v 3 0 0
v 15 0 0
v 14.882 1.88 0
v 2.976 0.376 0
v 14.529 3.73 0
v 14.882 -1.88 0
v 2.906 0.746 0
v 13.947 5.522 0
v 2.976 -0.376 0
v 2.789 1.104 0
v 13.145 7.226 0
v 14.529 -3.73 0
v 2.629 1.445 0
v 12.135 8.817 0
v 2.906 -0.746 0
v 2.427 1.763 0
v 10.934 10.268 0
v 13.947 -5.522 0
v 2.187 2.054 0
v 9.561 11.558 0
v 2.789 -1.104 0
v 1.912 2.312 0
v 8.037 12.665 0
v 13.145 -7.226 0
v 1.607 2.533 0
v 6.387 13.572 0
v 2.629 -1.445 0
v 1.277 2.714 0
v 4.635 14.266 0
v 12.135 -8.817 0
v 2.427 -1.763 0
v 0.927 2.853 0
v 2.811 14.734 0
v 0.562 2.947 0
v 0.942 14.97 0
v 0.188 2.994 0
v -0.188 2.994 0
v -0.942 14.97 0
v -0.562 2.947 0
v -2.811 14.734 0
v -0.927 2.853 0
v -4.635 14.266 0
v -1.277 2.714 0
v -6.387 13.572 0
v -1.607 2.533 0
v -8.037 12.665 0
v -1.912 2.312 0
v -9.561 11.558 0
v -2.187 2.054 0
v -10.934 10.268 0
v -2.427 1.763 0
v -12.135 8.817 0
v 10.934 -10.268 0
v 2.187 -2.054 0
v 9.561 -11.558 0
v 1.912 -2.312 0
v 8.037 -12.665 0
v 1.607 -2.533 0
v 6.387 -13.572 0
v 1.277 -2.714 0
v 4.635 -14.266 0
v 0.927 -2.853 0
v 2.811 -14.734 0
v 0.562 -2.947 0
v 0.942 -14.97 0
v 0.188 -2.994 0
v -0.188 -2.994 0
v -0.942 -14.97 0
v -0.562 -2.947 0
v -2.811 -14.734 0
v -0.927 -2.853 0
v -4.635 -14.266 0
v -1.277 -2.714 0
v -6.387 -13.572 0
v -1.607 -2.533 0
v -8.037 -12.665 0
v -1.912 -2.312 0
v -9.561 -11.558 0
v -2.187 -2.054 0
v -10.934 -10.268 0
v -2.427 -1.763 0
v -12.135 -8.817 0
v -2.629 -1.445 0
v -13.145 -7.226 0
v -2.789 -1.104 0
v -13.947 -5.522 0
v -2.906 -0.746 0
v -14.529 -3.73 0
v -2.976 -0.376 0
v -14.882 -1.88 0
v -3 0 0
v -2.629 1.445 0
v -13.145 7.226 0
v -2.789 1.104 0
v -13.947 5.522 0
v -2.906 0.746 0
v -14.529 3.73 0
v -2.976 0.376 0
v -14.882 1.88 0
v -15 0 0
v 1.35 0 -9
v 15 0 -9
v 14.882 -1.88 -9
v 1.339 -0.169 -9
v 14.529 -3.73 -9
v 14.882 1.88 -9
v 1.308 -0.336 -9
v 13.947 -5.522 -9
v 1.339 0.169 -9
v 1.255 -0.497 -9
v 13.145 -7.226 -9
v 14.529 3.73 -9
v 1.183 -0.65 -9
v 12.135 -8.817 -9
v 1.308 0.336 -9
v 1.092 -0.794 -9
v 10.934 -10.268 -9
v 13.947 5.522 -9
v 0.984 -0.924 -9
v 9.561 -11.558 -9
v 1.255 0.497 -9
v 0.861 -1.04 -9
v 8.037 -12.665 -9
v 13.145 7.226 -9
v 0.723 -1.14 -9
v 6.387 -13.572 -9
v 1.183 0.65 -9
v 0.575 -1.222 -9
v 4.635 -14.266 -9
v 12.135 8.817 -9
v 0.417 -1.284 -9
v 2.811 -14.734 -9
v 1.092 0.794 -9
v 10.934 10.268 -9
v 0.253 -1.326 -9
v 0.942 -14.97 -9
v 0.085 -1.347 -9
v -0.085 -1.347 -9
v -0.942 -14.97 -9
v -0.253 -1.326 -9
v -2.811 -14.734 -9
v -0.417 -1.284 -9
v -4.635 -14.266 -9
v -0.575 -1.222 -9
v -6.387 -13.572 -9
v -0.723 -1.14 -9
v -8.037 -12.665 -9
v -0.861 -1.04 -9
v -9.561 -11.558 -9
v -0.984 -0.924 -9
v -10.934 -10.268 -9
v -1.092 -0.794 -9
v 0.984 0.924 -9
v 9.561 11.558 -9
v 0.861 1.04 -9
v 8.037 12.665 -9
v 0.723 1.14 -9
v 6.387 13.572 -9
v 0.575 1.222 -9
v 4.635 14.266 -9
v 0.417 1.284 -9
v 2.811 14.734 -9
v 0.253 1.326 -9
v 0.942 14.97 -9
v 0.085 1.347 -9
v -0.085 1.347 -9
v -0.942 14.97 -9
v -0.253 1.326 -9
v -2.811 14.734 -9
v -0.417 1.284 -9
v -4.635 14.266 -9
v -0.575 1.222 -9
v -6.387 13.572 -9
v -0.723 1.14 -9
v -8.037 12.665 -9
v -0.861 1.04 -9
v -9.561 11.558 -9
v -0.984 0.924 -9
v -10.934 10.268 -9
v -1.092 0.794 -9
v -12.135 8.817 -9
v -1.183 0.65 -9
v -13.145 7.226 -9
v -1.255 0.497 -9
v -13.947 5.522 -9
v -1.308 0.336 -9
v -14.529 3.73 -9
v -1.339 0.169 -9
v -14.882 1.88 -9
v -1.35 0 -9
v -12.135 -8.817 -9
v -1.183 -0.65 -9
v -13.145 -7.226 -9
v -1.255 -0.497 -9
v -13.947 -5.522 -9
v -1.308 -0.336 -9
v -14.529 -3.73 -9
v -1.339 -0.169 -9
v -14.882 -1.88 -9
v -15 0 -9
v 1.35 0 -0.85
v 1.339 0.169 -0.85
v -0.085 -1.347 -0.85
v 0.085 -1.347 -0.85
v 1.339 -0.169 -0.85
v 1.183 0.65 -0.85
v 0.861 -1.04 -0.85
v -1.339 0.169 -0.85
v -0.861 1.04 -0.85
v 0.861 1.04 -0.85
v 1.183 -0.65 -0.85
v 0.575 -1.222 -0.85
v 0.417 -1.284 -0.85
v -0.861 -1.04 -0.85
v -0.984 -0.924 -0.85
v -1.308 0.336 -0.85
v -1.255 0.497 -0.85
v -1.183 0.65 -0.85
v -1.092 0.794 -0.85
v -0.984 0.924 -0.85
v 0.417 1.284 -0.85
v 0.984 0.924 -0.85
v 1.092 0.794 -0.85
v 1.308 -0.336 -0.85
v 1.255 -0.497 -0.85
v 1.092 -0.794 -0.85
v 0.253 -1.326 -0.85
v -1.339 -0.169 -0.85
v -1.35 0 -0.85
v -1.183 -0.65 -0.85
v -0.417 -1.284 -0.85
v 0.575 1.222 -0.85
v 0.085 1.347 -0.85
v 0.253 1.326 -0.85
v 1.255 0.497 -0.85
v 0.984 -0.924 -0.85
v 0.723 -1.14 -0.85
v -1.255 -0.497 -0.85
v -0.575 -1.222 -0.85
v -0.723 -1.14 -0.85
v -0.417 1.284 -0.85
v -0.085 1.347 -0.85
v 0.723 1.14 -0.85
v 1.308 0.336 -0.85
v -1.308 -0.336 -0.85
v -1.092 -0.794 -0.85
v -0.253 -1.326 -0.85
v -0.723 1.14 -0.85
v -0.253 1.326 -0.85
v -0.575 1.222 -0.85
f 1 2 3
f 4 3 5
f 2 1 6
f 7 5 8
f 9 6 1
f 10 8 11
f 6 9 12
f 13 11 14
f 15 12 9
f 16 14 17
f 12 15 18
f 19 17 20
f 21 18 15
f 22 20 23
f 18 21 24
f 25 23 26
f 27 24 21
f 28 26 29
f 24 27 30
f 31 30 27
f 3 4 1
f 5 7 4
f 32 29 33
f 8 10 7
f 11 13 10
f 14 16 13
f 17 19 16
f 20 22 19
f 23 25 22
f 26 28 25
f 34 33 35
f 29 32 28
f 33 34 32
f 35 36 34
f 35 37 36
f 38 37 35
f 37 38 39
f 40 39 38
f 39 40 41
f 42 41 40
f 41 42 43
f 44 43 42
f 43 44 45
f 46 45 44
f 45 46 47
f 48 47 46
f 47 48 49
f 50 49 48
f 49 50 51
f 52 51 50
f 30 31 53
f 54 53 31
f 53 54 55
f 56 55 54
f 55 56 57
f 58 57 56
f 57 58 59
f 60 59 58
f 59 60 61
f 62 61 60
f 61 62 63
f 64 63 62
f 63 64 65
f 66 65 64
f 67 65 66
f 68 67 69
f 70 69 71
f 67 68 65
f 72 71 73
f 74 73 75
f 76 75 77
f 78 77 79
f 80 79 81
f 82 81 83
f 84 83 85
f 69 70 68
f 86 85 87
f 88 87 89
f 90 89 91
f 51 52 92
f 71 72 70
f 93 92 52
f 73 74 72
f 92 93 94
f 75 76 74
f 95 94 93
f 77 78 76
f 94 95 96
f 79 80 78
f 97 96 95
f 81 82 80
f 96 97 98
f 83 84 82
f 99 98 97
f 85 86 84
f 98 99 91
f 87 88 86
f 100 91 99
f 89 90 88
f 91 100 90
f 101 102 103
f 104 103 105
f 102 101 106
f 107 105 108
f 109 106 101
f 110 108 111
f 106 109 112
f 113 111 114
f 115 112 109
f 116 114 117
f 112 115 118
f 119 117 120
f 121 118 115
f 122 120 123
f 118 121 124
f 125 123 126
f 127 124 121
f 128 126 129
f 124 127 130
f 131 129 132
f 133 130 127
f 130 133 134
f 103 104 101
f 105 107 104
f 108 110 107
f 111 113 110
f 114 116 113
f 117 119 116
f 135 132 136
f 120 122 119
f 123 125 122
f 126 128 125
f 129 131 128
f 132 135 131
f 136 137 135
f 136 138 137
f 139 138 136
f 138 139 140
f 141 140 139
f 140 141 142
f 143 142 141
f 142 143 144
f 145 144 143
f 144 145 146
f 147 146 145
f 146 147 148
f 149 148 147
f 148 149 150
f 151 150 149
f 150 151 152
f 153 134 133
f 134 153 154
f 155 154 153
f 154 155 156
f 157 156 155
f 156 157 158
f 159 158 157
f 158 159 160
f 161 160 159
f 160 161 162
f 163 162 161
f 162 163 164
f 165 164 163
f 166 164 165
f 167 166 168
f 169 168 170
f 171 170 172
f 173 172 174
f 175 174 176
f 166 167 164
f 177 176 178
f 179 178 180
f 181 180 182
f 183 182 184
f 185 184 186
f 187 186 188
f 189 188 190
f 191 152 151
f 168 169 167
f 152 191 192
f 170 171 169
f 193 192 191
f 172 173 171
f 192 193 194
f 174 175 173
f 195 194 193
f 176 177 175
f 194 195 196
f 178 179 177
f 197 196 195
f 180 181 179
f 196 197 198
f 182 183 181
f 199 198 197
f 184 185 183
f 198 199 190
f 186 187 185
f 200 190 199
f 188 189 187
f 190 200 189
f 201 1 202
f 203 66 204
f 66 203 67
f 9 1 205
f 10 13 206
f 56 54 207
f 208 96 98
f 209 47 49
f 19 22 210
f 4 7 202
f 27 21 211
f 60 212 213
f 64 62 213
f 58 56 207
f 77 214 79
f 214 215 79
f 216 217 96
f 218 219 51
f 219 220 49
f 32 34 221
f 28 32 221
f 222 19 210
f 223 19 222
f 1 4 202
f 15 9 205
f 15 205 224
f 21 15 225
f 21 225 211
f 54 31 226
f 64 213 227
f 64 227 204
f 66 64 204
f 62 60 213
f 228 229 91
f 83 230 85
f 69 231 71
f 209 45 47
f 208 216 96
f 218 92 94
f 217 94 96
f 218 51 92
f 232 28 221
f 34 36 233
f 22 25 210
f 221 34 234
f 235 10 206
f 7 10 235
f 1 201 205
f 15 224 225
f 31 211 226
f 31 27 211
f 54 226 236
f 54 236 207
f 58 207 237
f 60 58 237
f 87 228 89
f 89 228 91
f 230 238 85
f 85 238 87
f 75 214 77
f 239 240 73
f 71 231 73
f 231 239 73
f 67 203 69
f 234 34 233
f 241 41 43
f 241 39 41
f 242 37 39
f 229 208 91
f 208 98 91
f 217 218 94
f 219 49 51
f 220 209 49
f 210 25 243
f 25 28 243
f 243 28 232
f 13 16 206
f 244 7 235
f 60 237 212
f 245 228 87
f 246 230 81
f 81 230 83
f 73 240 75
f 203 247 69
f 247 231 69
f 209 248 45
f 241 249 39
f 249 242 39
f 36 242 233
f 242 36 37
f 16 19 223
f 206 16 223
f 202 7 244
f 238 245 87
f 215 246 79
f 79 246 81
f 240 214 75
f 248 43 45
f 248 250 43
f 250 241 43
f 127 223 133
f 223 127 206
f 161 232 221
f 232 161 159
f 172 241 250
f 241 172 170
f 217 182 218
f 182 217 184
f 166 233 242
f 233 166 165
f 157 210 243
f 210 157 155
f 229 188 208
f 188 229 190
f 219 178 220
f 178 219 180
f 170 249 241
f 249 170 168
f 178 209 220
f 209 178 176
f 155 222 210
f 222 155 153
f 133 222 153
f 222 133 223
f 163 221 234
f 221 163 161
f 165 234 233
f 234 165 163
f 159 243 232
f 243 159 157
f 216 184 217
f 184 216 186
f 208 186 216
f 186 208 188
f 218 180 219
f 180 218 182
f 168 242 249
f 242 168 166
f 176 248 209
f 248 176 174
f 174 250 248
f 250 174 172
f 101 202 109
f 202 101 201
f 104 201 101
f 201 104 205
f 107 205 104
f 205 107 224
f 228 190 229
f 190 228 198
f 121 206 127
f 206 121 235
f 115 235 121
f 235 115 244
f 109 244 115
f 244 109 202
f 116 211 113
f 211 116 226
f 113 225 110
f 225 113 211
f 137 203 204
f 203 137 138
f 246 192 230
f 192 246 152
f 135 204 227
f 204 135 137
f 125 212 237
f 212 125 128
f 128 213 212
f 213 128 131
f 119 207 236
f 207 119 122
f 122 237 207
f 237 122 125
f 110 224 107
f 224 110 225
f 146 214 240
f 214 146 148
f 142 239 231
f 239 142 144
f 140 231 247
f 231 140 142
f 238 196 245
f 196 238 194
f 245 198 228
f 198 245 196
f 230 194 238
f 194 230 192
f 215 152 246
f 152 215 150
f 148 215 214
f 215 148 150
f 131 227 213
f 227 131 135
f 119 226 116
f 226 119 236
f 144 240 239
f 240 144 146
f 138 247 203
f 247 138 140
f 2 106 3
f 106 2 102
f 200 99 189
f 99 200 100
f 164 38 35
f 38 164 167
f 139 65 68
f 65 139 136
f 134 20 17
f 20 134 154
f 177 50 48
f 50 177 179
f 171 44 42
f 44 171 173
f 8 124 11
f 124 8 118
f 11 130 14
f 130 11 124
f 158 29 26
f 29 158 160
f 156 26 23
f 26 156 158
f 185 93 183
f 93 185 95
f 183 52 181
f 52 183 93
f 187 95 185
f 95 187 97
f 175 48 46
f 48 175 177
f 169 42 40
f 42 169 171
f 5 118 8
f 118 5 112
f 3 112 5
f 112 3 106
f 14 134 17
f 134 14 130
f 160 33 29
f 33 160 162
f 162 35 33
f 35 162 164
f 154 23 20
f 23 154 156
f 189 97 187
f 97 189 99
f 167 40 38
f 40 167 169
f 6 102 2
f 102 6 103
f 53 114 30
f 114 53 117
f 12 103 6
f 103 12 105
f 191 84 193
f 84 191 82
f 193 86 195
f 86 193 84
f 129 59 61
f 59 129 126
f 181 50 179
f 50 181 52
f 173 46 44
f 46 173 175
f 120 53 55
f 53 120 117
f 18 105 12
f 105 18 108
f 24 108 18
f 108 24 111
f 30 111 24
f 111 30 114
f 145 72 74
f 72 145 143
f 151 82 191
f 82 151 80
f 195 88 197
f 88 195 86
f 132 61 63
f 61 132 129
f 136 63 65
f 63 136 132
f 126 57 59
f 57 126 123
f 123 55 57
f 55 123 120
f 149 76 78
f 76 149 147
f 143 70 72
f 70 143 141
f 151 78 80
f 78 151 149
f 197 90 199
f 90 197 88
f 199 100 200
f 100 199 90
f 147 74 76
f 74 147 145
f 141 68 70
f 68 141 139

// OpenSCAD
$fn = 50;


difference() {
	union() {
		translate(v = [0, 0, -9.0000000000]) {
			cylinder(h = 9, r = 15.0000000000);
		}
	}
	union() {
		translate(v = [0, 0, 0]) {
			rotate(a = [0, 0, 0]) {
				difference() {
					union() {
						#translate(v = [0, 0, -9.0000000000]) {
							cylinder(h = 9, r = 1.0000000000);
						}
						#translate(v = [0, 0, -0.8500000000]) {
							cylinder(h = 0.8500000000, r1 = 1.3500000000, r2 = 3.0000000000);
						}
						#translate(v = [0, 0, -9.0000000000]) {
							cylinder(h = 9, r = 1.3500000000);
						}
						#translate(v = [0, 0, -9.0000000000]) {
							cylinder(h = 9, r = 1.0000000000);
						}
					}
					union();
				}
			}
		}
	}
}
